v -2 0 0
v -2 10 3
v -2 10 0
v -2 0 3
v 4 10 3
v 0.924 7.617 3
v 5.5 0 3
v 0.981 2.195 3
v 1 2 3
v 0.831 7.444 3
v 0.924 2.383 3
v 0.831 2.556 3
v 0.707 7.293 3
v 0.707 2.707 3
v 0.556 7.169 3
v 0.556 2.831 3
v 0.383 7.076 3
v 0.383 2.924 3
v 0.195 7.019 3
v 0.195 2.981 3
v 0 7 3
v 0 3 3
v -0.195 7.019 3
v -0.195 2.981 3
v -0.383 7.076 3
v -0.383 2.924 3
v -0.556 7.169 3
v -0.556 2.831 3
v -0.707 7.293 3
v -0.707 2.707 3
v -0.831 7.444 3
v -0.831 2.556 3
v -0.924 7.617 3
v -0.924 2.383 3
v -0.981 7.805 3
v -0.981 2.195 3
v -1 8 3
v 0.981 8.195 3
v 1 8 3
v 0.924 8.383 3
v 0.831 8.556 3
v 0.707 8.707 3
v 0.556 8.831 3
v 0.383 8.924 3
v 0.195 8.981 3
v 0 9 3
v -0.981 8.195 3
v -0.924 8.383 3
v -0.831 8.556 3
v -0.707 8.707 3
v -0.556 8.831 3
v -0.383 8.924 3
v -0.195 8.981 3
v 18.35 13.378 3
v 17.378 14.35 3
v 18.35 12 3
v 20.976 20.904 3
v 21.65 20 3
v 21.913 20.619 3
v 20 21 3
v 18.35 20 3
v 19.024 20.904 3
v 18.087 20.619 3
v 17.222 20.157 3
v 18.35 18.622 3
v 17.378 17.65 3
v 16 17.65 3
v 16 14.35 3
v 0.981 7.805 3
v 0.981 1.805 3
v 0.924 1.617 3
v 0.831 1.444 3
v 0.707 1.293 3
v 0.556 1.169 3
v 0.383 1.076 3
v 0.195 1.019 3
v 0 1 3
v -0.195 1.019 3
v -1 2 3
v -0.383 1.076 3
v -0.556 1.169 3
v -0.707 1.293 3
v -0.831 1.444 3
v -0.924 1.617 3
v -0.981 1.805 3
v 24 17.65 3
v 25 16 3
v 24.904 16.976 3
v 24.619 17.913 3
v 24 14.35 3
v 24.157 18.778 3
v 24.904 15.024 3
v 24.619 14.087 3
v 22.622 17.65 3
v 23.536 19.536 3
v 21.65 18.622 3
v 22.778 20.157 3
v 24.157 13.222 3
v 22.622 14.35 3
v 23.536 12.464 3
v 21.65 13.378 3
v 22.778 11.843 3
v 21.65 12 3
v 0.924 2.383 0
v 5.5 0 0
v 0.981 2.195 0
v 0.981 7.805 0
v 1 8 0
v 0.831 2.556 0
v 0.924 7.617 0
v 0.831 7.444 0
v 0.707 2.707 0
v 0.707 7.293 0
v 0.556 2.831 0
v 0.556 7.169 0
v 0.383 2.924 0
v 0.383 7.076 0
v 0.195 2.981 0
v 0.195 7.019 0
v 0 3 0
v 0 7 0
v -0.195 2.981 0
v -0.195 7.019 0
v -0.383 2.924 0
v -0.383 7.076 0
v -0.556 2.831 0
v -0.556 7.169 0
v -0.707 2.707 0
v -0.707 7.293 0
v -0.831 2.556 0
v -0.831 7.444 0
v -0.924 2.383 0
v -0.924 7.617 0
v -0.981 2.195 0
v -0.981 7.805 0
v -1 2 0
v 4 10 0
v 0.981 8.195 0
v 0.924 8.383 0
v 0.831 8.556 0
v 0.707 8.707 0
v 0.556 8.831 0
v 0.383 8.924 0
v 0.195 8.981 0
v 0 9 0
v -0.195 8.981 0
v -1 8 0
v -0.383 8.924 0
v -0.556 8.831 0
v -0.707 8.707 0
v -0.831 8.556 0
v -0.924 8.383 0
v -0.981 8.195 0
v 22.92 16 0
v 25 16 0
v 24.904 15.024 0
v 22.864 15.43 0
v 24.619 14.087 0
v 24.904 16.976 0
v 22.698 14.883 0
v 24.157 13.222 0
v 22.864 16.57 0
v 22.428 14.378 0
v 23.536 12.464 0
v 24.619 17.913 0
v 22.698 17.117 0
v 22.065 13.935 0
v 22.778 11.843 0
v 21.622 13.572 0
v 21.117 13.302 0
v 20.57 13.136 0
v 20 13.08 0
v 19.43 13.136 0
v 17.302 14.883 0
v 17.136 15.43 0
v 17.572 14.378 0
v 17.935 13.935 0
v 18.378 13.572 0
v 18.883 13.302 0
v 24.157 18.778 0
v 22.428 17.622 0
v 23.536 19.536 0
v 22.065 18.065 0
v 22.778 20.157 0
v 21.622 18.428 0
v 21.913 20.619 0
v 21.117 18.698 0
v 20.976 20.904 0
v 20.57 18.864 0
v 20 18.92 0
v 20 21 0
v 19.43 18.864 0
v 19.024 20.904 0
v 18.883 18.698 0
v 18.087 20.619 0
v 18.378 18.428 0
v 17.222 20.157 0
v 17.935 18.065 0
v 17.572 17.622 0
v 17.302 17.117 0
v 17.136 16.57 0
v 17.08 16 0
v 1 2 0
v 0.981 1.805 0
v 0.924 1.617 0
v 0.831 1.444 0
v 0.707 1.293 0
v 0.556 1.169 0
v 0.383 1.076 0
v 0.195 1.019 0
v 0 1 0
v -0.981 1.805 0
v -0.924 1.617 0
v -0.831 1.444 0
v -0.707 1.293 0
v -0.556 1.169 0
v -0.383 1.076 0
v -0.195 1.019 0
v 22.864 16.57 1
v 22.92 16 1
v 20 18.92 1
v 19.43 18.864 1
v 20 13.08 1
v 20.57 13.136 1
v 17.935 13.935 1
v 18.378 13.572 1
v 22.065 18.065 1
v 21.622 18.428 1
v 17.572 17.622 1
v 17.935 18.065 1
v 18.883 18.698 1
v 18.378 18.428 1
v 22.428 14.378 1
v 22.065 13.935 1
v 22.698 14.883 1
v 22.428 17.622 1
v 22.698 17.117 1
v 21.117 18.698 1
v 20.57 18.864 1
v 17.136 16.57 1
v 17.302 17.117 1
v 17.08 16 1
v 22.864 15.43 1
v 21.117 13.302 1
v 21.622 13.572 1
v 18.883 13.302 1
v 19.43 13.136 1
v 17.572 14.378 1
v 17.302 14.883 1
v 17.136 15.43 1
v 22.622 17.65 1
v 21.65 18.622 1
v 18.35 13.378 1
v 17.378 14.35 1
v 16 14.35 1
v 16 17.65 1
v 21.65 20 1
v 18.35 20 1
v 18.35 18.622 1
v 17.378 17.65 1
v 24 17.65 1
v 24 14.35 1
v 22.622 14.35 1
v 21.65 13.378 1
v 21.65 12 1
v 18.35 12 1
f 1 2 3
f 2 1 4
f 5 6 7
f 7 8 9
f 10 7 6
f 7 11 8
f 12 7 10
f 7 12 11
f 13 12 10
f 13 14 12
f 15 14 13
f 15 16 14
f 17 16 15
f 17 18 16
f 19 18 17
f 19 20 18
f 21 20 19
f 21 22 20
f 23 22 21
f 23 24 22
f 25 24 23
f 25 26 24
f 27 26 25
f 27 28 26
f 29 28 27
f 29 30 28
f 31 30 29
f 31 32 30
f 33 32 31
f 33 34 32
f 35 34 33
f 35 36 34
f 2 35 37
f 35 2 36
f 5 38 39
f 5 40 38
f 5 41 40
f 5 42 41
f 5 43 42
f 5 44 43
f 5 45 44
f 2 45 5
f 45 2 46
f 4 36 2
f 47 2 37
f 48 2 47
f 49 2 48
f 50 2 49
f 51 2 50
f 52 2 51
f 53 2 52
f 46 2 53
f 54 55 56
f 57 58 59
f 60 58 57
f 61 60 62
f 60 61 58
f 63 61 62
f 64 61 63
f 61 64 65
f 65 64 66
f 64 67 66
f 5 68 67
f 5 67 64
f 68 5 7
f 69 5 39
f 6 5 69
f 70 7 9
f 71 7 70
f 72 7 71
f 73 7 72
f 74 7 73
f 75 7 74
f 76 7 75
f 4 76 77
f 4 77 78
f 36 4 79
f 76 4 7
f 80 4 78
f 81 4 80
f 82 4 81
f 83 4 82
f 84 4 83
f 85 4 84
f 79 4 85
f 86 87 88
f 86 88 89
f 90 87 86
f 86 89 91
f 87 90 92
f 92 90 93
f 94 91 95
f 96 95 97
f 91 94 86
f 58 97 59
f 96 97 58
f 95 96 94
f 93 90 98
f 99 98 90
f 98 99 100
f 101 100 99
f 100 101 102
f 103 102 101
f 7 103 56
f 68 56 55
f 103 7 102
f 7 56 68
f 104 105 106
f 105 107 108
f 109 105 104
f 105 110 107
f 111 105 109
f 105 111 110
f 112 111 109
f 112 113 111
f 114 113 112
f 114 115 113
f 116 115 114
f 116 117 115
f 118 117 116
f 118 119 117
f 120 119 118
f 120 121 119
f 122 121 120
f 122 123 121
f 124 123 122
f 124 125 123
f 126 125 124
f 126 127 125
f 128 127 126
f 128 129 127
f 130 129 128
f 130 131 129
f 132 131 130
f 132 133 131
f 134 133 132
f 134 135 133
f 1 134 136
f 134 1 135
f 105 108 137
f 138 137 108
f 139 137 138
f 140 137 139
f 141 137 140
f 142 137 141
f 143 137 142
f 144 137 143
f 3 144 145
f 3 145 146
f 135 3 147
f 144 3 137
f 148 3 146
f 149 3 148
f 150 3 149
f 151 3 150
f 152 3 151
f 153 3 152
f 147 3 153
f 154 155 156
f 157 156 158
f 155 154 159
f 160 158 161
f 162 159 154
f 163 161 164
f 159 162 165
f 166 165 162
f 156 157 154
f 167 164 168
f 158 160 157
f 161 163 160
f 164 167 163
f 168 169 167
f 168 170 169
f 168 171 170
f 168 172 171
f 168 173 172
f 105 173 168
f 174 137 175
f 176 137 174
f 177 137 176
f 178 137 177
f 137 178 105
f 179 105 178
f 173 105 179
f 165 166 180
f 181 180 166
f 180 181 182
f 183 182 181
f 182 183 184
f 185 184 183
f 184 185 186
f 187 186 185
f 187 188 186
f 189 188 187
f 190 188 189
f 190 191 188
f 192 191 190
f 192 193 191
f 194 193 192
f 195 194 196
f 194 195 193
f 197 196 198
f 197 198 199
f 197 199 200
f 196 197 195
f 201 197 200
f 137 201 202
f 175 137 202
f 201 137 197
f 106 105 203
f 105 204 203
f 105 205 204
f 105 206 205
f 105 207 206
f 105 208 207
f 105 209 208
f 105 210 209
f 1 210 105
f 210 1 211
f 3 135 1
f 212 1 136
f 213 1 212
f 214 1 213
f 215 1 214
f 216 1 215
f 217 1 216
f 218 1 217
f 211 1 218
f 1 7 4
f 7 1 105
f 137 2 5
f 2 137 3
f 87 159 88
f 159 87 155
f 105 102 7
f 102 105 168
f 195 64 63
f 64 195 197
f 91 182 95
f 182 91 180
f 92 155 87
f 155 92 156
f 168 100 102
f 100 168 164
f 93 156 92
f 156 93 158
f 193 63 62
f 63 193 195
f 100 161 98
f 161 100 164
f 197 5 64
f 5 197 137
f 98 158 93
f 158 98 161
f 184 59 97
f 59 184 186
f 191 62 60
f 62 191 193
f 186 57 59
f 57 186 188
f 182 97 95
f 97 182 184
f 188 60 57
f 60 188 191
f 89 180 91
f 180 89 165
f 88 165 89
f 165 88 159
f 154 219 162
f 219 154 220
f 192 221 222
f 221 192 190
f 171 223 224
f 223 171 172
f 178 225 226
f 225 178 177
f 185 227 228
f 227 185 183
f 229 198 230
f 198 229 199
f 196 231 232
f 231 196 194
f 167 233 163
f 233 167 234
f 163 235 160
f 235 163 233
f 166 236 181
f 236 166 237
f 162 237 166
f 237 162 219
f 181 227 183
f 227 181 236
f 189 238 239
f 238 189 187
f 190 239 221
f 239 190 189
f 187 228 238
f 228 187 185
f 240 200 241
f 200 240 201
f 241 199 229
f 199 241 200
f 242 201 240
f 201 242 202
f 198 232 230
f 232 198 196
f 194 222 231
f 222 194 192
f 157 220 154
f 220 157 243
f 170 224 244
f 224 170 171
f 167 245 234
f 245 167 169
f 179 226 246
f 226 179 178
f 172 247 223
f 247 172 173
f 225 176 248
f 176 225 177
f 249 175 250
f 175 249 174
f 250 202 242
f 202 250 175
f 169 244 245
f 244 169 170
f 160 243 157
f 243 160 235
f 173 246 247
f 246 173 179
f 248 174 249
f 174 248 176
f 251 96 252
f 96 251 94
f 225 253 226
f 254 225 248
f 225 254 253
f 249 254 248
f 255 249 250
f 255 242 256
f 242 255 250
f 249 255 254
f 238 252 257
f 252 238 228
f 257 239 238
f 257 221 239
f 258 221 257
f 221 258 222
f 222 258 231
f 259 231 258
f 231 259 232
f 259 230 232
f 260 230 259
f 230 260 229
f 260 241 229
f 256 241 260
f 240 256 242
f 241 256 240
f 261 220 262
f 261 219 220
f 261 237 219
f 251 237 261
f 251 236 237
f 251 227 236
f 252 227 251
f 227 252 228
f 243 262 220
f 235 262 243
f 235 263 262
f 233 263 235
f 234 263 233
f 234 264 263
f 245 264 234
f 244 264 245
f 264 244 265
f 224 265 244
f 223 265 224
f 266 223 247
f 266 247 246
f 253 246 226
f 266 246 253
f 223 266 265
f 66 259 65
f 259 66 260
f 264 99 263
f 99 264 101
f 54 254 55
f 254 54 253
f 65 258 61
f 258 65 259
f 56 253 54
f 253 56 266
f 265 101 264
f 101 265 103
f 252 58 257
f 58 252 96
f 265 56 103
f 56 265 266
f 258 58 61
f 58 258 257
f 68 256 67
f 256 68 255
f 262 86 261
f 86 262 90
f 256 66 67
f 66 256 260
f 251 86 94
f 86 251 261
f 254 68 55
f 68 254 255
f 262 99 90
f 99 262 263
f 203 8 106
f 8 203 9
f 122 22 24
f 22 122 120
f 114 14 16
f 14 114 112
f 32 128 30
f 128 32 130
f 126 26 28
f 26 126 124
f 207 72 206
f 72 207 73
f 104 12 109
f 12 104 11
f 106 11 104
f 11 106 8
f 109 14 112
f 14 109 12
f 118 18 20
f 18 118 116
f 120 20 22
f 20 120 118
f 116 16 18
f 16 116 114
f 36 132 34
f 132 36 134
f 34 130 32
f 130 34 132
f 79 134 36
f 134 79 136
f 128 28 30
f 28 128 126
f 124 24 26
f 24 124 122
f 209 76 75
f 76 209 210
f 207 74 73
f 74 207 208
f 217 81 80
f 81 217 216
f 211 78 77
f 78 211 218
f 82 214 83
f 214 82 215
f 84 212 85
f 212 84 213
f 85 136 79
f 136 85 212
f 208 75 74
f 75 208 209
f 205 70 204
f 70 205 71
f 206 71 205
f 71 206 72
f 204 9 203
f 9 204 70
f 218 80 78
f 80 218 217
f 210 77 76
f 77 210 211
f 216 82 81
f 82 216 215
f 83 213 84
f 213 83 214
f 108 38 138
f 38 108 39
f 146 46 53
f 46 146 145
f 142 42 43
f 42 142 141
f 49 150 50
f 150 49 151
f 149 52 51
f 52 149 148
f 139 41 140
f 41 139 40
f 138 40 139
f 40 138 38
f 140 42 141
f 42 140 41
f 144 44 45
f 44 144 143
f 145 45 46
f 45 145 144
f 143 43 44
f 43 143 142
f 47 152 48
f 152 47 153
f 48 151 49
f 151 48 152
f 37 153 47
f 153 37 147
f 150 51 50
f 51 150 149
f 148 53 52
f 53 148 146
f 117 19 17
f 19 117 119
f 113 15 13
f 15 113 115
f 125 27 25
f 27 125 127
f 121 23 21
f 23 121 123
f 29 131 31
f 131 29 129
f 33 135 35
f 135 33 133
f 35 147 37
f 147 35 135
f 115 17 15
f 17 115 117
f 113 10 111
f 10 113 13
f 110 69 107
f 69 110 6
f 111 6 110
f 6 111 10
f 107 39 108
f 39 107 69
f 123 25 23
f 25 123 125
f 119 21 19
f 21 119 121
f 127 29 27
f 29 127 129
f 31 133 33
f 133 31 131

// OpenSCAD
// file: config.scad
//Parameters for servo_lx16a
$fn = 24;
//x,y,z => l,w,h


servo_l         = 45.20; 
servo_w         = 24.70; 
body_h          = 32;

servo_h         = 35;

hub_offset      = 10.10;

rad = 2;


w_between_holes = 20.5;
l_between_top_holes = 20.7;
l_between_bottom_holes = 24.45;
top_hole_l_offset = 6.1;
bottom_hole_l_offset = 2.35;

hole_dia = 1.6;
attach_screw_l = 5;

top_hub_carve_h = 2.6;
bottom_hub_carve_h = 3.4;

top_attach_carve_h = 1.1;
bottom_attach_carve_h = 1.9;

hub_carve_r = 10.8;

hub_r = 10.1;

w_between_ridges = 19.5;

top_horn_h = 3.20;
bottom_horn_h = 3.85;

top_horn_r = 3.15;
bottom_horn_r = 3;



hub_h           = 4;
small_hub_r     = 6.15/2;  
horn_r          = 4.66/2;
horn_h          = 3;

wire_l          = 4;
wire_w          = 1.5;
wire_h          = 1;
wire_place      = 4.8;
// file: electronics.scad
$fn=100;

//on_off_switch();

//pi_zero();

//translate ([0,100,0])
//pca9685();

//dc_dc();

//pi_camera();



module header(pins, rows){
  color("darkgrey") cube([2.54*pins,2.54*rows,1.27]);
  
  color("gold")
  for(x=[0:pins-1],y=[0:rows-1])
    translate([x*2.54+(1.27+.6)/2,y*2.54+(1.27+.6)/2,-3.5]) cube([0.6,0.6,11.5]);
}


module pi_zero(){
    // PCB
    color("limegreen") difference(){
        hull(){
            translate([-(65-6)/2,-(30-6)/2,0]) cylinder(r=3, h=1.4 );
            translate([-(65-6)/2, (30-6)/2,0]) cylinder(r=3, h=1.4 );
            translate([ (65-6)/2,-(30-6)/2,0]) cylinder(r=3, h=1.4 );
            translate([ (65-6)/2, (30-6)/2,0]) cylinder(r=3, h=1.4 );
        }
        
        translate([-65/2+3.5,-30/2+3.5,-1]) cylinder(d=2.75, h=3);
        translate([-65/2+3.5, 30/2-3.5,-1]) cylinder(d=2.75, h=3);
        translate([65/2-3.5,-30/2+3.5,-1]) cylinder(d=2.75, h=3);
        translate([65/2-3.5, 30/2-3.5,-1]) cylinder(d=2.75, h=3);
    }
    
    // Header
    translate([-10*2.54,30/2-2.54-3.5,1.4])
    header(20,2);
    
    translate([-65/2,-30/2,1.4]){
        color("silver"){
        
            // micro USB
            translate([41-8/2,-1.5,0]) cube([8,6,2.6]);
            translate([54-8/2,-1.5,0]) cube([8,6,2.6]);        
            
            // HDMI
            translate([6.9,-1.5,0]) cube([13,7,3]);
        }
    
        color("darkgrey"){
        
            // Camera
            translate([64-4/2,7.1,0]) cube([4,16,2.5]);
        }
    
        // Micro SD Card
        color("silver") translate([0,8.6,-0]) cube([13,14,1.5]);    
        color("darkgrey") translate([-2.4,10.1,0]) cube([2.4,11,1]);
    }
}



module pca9685(withHeader=true){  
  
    // PCB
    color("limegreen") difference(){
        translate([0,0,0]) hull(){
            translate([-(62.5-6)/2,-(25.4-6)/2,0]) cylinder(r=3, h=1.4 );
            translate([-(62.5-6)/2, (25.4-6)/2,0]) cylinder(r=3, h=1.4 );
            translate([ (62.5-6)/2,-(25.4-6)/2,0]) cylinder(r=3, h=1.4 );
            translate([ (62.5-6)/2, (25.4-6)/2,0]) cylinder(r=3, h=1.4 );
        }
        
        translate([-55.9/2,-18.8/2,-1]) cylinder(d=2.75, h=3);
        translate([-55.9/2, 18.8/2,-1]) cylinder(d=2.75, h=3);
        translate([55.9/2,-18.8/2,-1]) cylinder(d=2.75, h=3);
        translate([55.9/2, 18.8/2,-1]) cylinder(d=2.75, h=3);
    } 
    
    
    // capacitor
    color("silver")
    translate([-(62.5/2)+17.1,(25.4-8.3)/2,1.4])
    cylinder(d=8.3, h=12.7);
    
    //power connector
    color("blue")
    translate([-(62.5/2)+25.1+2.54*2,(25.4-8.3)/2,1.4])
    cube([2.54*2,4,8]);
    
    // Header top
    translate([-(62.5/2)+5.65,-25.4/2,1.4])
    header(4,3);
    
    translate([2.25,-25.4/2,1.4])
    header(4,3);
    
    translate([-2.25-2.54*4,-25.4/2,1.4])
    header(4,3);
    
    translate([62.5/2-5.65-2.54*4,-25.4/2,1.4])
    header(4,3);
    
    translate([62.5/2,-25.4/2+5.08,1.4])
    rotate([0,0,90])
    header(6,1);
    
    translate([-62.5/2+2.54,-25.4/2+5.08,1.4])
    rotate([0,0,90])
    header(6,1);

  
}

module dc_dc(){
    
    // PCB
    color("limegreen") difference(){
        translate([0,0,0]) hull(){
            translate([-(24.5-6)/2,-(48-6)/2,0]) cylinder(r=3, h=1.4 );
            translate([-(24.5-6)/2, (48-6)/2,0]) cylinder(r=3, h=1.4 );
            translate([ (24.5-6)/2,-(48-6)/2,0]) cylinder(r=3, h=1.4 );
            translate([ (24.5-6)/2, (48-6)/2,0]) cylinder(r=3, h=1.4 );
        }
      
        translate([0,0,-1]) {
            
            //translate([-17/2,-35/2,0])
            //cylinder(d=3.15, h=2.5);
            
            translate([-17/2,35/2, 0])
            cylinder(d=3.15, h=2.5);
            
            translate([17/2,-35/2, 0])
            cylinder(d=3.15, h=2.5);
            
            //translate([17/2,35/2, 0])
            //cylinder(d=3.15, h=2.5); 
          
        }


    } 
    
    
    // capacitors
    color("darkblue")
    translate([-(24.5/2)+12.1,(48-8)/2,1.4])
    cylinder(d=8, h=10);
    
    color("darkblue")
    translate([-(24.5/2)+12.1,-(48-8)/2,1.4])
    cylinder(d=8, h=10);
    
    //toroid
    
    difference(){
        
        color("orange")
        translate([(24.5/2)-22.1+9,(48-30)/2,1.4])
        cylinder(d=12, h=7.6);
        
        color("orange")
        translate([(24.5/2)-22.1+9,(48-30)/2,0.5])
        cylinder(d=6, h=11);

        
    }
    
    
    //potentiometer
    color("blue")
    translate([24.5/2-2,-48/2+9,1.4])
    rotate([0,0,90])
    cube([5,10,11]);
    
    
    //IC
    color("black")
    translate([24.5/2-8,-48/2+15,1.4])
    rotate([0,0,90])
    cube([11,11,5]);
    
    
}


module on_off_switch(){
    
    union(){
        
        color("silver")
        translate([-8/2, -4/2, 0])
        cube([8, 4, 3.8]);
        
        color("black")
        translate([-1.5/2, -1.5/2, 3.8])
        cube([1.5, 1.5, 3]);
        
        color("silver")
        translate([-0.5/2, -0.5/2, -3.2])
        cube([0.5, 0.5, 3.2]);
        
        color("silver")
        translate([-0.5/2-2.5, -0.5/2, -3.2])
        cube([0.5, 0.5, 3.2]);
        
        color("silver")
        translate([-0.5/2+2.5, -0.5/2, -3.2])
        cube([0.5, 0.5, 3.2]);
        
        
        
        
    }
    
}


module pi_camera(){
    difference(){
        union(){
            color("limegreen")
            translate([-25.5/2, -24.5/2, 0])
            cube([25.5, 24.5, 0.9]);
            
            
            //camera sensor
            color("darkgrey")
            translate([-8.5/2, -8.5/2+2.4, 0.9])
            cube([8.5, 8.5, 3.5]);
            
            color("darkgrey")
            translate([0, 2.4, 0.9+3.5])
            cylinder(d=8, h=0.75, $fn=32);
        
            color("darkgrey")
            translate([0, 2.4, 0.9+3.5+0.75])
            cylinder(d=6, h=0.75, $fn=32);
            
            color("darkgrey")
            translate([0, 2.4, 0.9+3.5+0.75+0.75])
            cylinder(d1=2, d2=5, h=2, $fn=32);
            
            //sensor connector
            color("orange")
            translate([-8.5/2, -8.5/2+2.4-10.5, 0.9])
            cube([8.5, 10.5, 2.5]);
            
            //led
            color("white")
            translate([-20/2, -8.5/2+2.4-7, 0.9])
            cube([20, 3, 1]);            
            
            
            //connector
            color("white")
            translate([-20.8/2, -5.5+24/2, -2.4])
            cube([20.8, 5.5, 2.4]);
            
            
    
        }
          
        translate([-21/2,-20/2,-1]) cylinder(d=2.1, h=3);
        translate([-21/2, 20/2-7.5,-1]) cylinder(d=2.1, h=3);
        translate([21/2,-20/2,-1]) cylinder(d=2.1, h=3);
        translate([21/2, 20/2-7.5,-1]) cylinder(d=2.1, h=3);
    }
    
    
}
// file: servo_5g.scad
include <Config.scad>

servo_5g();


$fn = 24;
//x,y,z => l,w,h


module servo_5g() {
  
    translate([-servo5_l/2, -servo5_w/2, -body5_h/2-hub5_h/2-horn5_h/2]) {
    
        color("white") 
        translate([servo5_l/2,servo5_l/2,body5_h+hub5_h])
        cylinder(r=horn5_r,h=horn5_h);
        
        color("deepSkyBlue",.7) //deepSkyBlue
        union() {
            cube([servo5_l,servo5_w,body5_h]);
            translate([servo5_l/2,servo5_l/2,body5_h])
            cylinder(r=servo5_l/2,h=hub5_h);
            translate([servo5_l/2,servo5_l/2+3.7,body5_h])
            cylinder(r=small_hub5_r,h=hub5_h);
            
        }
    }
}
// file: servo_12g.scad
include <config.scad>


servo_12g();


$fn = 24;
//x,y,z => l,w,h


module servo_12g() {
  
    translate([-servo_l/2, -servo_w/2, -body_h/2-hub_h/2-horn_h/2]) {
    
        color("white") 
        translate([servo_l/2,servo_l/2,body_h+hub_h])
        cylinder(r=horn_r,h=horn_h);
        
        color("deepSkyBlue",.7) //deepSkyBlue
        union() {
            cube([servo_l,servo_w,body_h]);
            translate([servo_l/2,servo_l/2,body_h])
            cylinder(r=servo_l/2,h=hub_h);
            translate([servo_l/2,servo_l/2+6.30,body_h])
            cylinder(r=small_hub_r,h=hub_h);
            
        }
    }
}

module roundedRect(size, radius)
{
x = size[0];
y = size[1];
z = size[2];

translate([x/2+radius/2, y/2+radius/2, 0]){
linear_extrude(height=z)
hull()
{
// place 4 circles in the corners, with the given radius
translate([(-x/2)+(radius/2), (-y/2)+(radius/2), 0])
circle(r=radius);

translate([(x/2)-(radius/2), (-y/2)+(radius/2), 0])
circle(r=radius);

translate([(-x/2)+(radius/2), (y/2)-(radius/2), 0])
circle(r=radius);

translate([(x/2)-(radius/2), (y/2)-(radius/2), 0])
circle(r=radius);
}
}
}
// file: Config.scad
//Parameters for 12g servo
$fn = 24;
//x,y,z => l,w,h

tap_r = 0.85;
hole_r = 1.0;

servo_l         = 12;  // was 12
servo_w         = 24;  // was 23
body_h          = 20.80;

servo_h         = 27; //not used in code was 27

wing_w          = 4.5;
wing_h          = 2.33;
wing_place      = 16.3;   
hole_offset     = 2.2;    //not checked
mount_hole_r    = 2/2;
mount_slot      = 1;

servo_ww        = servo_w+wing_w*2; // not used in code but is handy number

hub_h           = 4;
small_hub_r     = 6.15/2;  
horn_r          = 4.66/2;
horn_h          = 3;

wire_l          = 4;
wire_w          = 1.5;
wire_h          = 1;
wire_place      = 4.8;

servo_full_w    = servo_w+wing_w*2;

rad = 2;




//Parameters for 5g servo

servo5_l         = 8.6; 
servo5_w         = 18.6; 
body5_h          = 14.65;


hub5_h = 2.15;
small_hub5_r = 4.6/2;  
horn5_r = 4.66/2;
horn5_h = 3;

servo5_h         = body5_h+hub5_h+horn5_h;

mount_x = servo5_l + 2;
mount_y = servo5_w + 2;
mount_round = 1;
servo_tol = 0.2;
servo5_x     = servo5_l + servo_tol*2; //~12
servo5_y     = servo5_w + servo_tol*8; //~23
// main file
include <Config.scad>
use <servo_12g.scad>
use <servo_5g.scad>
use <electronics.scad>


Citro6_51();


module Citro6_51(){
    difference(){
        union(){
            
            translate([-2, 0, 0])
            cube([6, 10, 3]);
            
            //translate([20, 16, 0]) 
            //cylinder(d=12, h=3, $fn=32);
            
            translate([0, 0, 0]) hull(){
                
                translate([20, 16, 0]) 
                cylinder(d=10, h=3, $fn=32);
                
                translate([4,0,0]) 
                cube([1.5, 10, 3]);
    
            }
        }
        
        translate([20, 16, -1]) 
        cylinder(d=5.84, h=4, $fn=32);
        
        translate([20, 16, 1]) 
        rotate([0, 0, 22.5])
        cylinder(d=6.54, h=4, $fn=8);
        
        //rotate([0,0,10])    
        translate([20-3.3/2, 16-8/2, 1])
        //rotate([0,0,10])
        cube([3.3, 8, 2.1]);
        
        translate([20-8/2, 16-3.3/2, 1])
        cube([8, 3.3, 2.1]);
        
        //translate([-0.1, 10/2, servo5_h/2+3])
        //rotate([0, 90, 0])
        //#cylinder(d=5.84, h=4, $fn=32);
        
        translate([0, 2, -0.1]) 
        cylinder(d=2, h=4.1, $fn=32);
        
        translate([0, 8, -0.1]) 
        cylinder(d=2, h=4.1, $fn=32);
        
    }
}
